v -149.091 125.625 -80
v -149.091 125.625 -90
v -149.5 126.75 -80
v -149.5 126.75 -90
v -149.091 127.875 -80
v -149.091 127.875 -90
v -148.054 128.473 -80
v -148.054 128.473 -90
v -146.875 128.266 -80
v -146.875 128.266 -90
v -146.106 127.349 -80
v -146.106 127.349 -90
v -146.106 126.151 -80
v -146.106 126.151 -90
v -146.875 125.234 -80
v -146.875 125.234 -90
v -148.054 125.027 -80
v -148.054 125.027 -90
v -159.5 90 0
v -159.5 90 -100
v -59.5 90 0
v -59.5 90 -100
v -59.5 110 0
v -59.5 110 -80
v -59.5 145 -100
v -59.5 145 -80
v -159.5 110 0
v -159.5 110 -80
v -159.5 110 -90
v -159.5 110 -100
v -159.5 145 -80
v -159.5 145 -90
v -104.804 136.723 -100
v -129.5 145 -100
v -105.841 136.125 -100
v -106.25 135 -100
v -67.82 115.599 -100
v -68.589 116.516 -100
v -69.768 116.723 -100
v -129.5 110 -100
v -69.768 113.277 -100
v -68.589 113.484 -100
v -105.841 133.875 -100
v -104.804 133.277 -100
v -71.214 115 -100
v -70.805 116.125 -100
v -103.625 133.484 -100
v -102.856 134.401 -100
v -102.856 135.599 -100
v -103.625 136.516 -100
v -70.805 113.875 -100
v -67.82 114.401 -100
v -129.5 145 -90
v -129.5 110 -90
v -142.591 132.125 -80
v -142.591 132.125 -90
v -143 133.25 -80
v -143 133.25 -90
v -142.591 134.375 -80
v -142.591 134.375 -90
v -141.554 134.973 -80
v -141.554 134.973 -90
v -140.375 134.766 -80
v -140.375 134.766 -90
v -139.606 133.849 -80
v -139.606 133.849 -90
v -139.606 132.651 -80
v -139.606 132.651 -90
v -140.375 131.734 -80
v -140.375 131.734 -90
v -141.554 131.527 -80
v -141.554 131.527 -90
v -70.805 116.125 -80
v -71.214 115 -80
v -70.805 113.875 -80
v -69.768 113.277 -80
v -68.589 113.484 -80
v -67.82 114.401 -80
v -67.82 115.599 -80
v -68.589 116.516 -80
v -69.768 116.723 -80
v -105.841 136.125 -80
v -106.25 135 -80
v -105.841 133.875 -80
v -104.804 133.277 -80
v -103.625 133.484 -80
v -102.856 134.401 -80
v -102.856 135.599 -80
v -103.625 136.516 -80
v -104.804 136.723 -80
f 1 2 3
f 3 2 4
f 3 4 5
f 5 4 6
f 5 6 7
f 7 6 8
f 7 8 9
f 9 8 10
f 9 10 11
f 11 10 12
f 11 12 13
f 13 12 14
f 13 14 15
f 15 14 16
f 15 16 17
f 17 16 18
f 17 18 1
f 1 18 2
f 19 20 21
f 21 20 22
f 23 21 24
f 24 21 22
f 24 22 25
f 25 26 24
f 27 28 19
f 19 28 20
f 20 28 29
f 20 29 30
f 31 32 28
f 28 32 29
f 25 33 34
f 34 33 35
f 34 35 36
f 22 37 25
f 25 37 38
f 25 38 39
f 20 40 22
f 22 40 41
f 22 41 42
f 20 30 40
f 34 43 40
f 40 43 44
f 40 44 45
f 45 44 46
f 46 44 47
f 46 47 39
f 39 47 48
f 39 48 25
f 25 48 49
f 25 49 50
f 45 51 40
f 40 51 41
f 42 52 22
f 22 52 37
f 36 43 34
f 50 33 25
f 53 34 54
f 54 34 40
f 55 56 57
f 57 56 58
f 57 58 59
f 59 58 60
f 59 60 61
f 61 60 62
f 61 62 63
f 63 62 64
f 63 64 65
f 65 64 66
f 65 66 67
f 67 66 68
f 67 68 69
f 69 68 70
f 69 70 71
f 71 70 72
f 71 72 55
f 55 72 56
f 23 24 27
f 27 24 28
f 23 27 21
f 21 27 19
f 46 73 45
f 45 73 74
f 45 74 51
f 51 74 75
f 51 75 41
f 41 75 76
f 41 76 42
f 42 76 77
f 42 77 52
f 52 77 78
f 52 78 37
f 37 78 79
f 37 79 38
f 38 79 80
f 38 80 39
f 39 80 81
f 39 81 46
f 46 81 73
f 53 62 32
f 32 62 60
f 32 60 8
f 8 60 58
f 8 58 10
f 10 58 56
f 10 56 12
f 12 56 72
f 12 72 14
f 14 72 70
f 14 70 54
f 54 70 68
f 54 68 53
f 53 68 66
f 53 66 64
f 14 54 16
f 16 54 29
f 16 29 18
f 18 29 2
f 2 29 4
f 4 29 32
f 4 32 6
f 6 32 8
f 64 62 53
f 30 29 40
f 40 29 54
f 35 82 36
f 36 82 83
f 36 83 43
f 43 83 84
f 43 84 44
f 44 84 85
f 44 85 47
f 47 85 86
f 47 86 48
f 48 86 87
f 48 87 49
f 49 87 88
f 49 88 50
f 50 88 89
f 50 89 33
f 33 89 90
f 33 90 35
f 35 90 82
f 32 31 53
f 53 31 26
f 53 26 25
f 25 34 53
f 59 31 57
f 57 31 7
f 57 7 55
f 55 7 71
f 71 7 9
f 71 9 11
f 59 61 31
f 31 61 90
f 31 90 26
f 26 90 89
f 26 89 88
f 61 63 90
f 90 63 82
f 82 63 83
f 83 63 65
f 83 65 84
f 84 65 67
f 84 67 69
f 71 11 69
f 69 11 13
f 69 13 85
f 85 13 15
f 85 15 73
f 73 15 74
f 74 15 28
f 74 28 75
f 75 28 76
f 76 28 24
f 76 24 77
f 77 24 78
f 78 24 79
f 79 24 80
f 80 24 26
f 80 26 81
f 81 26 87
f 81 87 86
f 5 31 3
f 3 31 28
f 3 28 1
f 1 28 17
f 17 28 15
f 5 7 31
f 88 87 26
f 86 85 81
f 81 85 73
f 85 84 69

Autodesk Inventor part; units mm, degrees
ref_plane "YZ Plane" through (0, 0, 0) normal (1, 0, 0) x (0, 1, 0)
ref_plane "XZ Plane" through (0, 0, 0) normal (0, 1, 0) x (-1, 0, 0)
ref_plane "XY Plane" through (0, 0, 0) normal (0, 0, 1) x (1, 0, 0)
sketch "Boceto2" plane through (0, 0, 0) normal (0, 1, 0) x (-1, 0, 0)
  line L0 (7.5, 100) -> (-7.5, 100)
  line L1 (-7.5, 100) -> (-7.5, -100)
  line L2 (-7.5, -100) -> (7.5, -100)
  line L3 (7.5, -100) -> (7.5, 100)
  line L4 (7.5, 100) -> (-7.5, -100) construction
  line L5 (-7.5, 100) -> (7.5, -100) construction
  point P0 (0, 0)
  dimension "d7" = 15
  dimension "d8" = 200
extrude "Extrusión1" add sketch "Boceto2" along normal blind 10
sketch "Boceto3" plane through (0, 10, 0) normal (0, 1, 0) x (1, 0, 0)
  line L0 (5, 60) -> (-5, 60)
  line L1 (-5, 60) -> (-5, 70)
  line L2 (-5, 70) -> (5, 70)
  line L3 (5, 70) -> (5, 60)
  line L4 (5, 60) -> (-5, 70) construction
  line L5 (7.5, 100) -> (-7.5, 100) projected
  line L6 (0, 64.5148) -> (0, 61.9205)
  circle A0 centre (3.25, 61.75) radius 1.75
  circle A1 centre (-3.25, 68.25) radius 1.75
  line L7 (-7.5, 100) -> (-7.5, -100) projected
  line L8 (-7.5, 0) -> (0, 0)
  line L9 (5, -70) -> (5, -60)
  line L10 (-5, -70) -> (5, -70)
  line L11 (5, -60) -> (-5, -60)
  line L12 (-5, -60) -> (-5, -70)
  line L13 (5, -60) -> (-5, -70) construction
  line L14 (0, -64.5148) -> (0, -61.9205)
  circle A2 centre (-3.25, -68.25) radius 1.75
  circle A3 centre (3.25, -61.75) radius 1.75
  point P0 (3.25, 68.25)
  point P1 (-5, 65)
  point P2 (-3.25, 61.75)
  point P3 (0, 100)
  point P4 (3.25, -68.25)
  point P5 (-3.25, -61.75)
  point P6 (-5, -65)
  dimension "d12" = 1.75
  dimension "d13" = 1.75
  dimension "d14" = 1.75
  dimension "d15" = 1.75
  dimension "d16" = 10
  dimension "d17" = 10
  dimension "d19" = 30
  dimension "d67" = 31.75
hole "Agujero1" at (3.25, 10, -61.75) at (-3.25, 10, -68.25) at (-3.25, 10, 68.25) at (3.25, 10, 61.75) direction (0, -1, 0) diameter 3.5 end through all
sketch "Boceto4" plane through (0, 10, 0) normal (0, 1, 0) x (1, 0, 0)
  line L0 (-7.5, 100) -> (-7.5, -100) projected
  line L1 (-7.5, -100) -> (7.5, -100)
  line L2 (7.5, -100) -> (7.5, -80)
  line L3 (7.5, -80) -> (-7.5, -80)
  line L4 (-7.5, -80) -> (-7.5, -100)
  line L5 (-7.5, 0) -> (1.0116, 0)
  line L6 (-7.5, -100) -> (-7.5, 100)
  line L7 (-7.5, 100) -> (7.5, 100)
  line L8 (7.5, 100) -> (7.5, 80)
  line L9 (7.5, 80) -> (-7.5, 80)
  line L10 (-7.5, 80) -> (-7.5, 100)
  point P0 (0, 0)
  point P1 (-7.5, -80)
  point P2 (-7.5, 80)
  dimension "d27" = 15
  dimension "d28" = 20
extrude "Extrusión2" add sketch "Boceto4" along normal blind 80
sketch "Boceto5" plane through (0, 90, 0) normal (0, 1, 0) x (1, 0, 0)
  line L0 (-7.5, -100) -> (7.5, -100) projected
  line L1 (-7.5, -100) -> (40.5, -100)
  line L2 (40.5, -100) -> (40.5, 100)
  line L3 (40.5, 100) -> (-7.5, 100)
  line L4 (-7.5, 100) -> (-7.5, -100)
  line L5 (40.5, -100) -> (-159.5, -100)
  line L6 (-159.5, -100) -> (-159.5, 100)
  line L7 (-159.5, 100) -> (40.5, 100)
  line L8 (40.5, 100) -> (40.5, -100)
  point P0 (0, 0)
  point P1 (-7.5, 100)
  dimension "d31" = 48
  dimension "d32" = 200
  dimension "d74" = 200
extrude "Extrusión3" add sketch "Boceto5" along normal blind 110
sketch "Boceto6" plane through (0, 200, 0) normal (0, 1, 0) x (1, 0, 0)
  line L0 (40.5, 100) -> (7.5, 100) projected
  line L1 (40.5, 100) -> (20.5, 100)
  line L2 (20.5, 100) -> (20.5, 80)
  line L3 (7.5, -100) -> (40.5, -100) projected
  line L4 (24, -100) -> (24, -80)
  line L5 (-159.5, 100) -> (-159.5, -100) projected
  line L6 (20.5, 80) -> (-159.5, 80)
  line L7 (-159.5, 80) -> (-159.5, -80)
  line L8 (-159.5, -80) -> (20.5, -80)
  line L9 (20.5, -80) -> (20.5, 80)
  line L10 (-159.5, -100) -> (40.5, -100) projected
  point P0 (7.5, 80)
  point P1 (-159.5, 80)
  dimension "d36" = 20
  dimension "d37" = 20
  dimension "d38" = 20
  dimension "d78" = 20
extrude "Extrusión4" cut sketch "Boceto6" against normal blind 90
sketch "Boceto7" plane through (-159.5, 90, -100) normal (-1, 0, 0) x (0, 0, 1)
  line L0 (0, 110) -> (20, 110) projected
  line L1 (20, 110) -> (10, 110)
  line L2 (10, 110) -> (10, 20)
  line L3 (10, 20) -> (20, 20)
  line L4 (20, 20) -> (20, 110)
  line L5 (180, 110) -> (180, 20) projected
  line L6 (180, 110) -> (190, 110)
  line L7 (190, 110) -> (190, 20)
  line L8 (190, 20) -> (180, 20)
  line L9 (180, 20) -> (180, 110)
  line L10 (200, 0) -> (200, 110) projected
  line L11 (0, 0) -> (0, 110) projected
  line L12 (0, 110) -> (10, 110)
  line L13 (10, 110) -> (10, 20)
  line L14 (10, 20) -> (0, 20)
  line L15 (0, 20) -> (0, 110)
  line L16 (200, 110) -> (0, 110) projected
  line L17 (200, 110) -> (190, 110)
  line L18 (190, 110) -> (190, 20)
  line L19 (190, 20) -> (200, 20)
  line L20 (200, 20) -> (200, 110)
  point P0 (100, -90)
  point P1 (200, 20)
  dimension "d42" = 10
  dimension "d63" = 10
  dimension "d65" = 10
extrude "Extrusión5" cut sketch "Boceto7" against normal blind 30 contours L0 L2 L14 L11 | L16 L10 L19 L7
sketch "Boceto8" plane through (-7.5, 0, 100) normal (0, 0, 1) x (1, 0, 0)
  line L0 (-122, 200) -> (-122, 110) projected
  line L1 (-132, 175) -> (-142, 175)
  line L2 (-142, 175) -> (-142, 185)
  line L3 (-142, 185) -> (-132, 185)
  line L4 (-132, 185) -> (-132, 175)
  line L5 (-132, 175) -> (-142, 185) construction
  line L6 (-142, 175) -> (-132, 185) construction
  line L7 (-152, 200) -> (48, 200) projected
  line L8 (-113, 155) -> (-128, 155)
  line L9 (-152, 110) -> (-122, 110) projected
  line L10 (-132, 180) -> (-131.5898, 180)
  circle A0 centre (-140.25, 183.25) radius 1.75
  circle A1 centre (-133.75, 176.75) radius 1.75
  line L11 (-132, 125) -> (-132, 135)
  line L12 (-142, 125) -> (-132, 125)
  line L13 (-132, 135) -> (-142, 125) construction
  line L14 (-132, 135) -> (-142, 135)
  line L15 (-142, 135) -> (-132, 125) construction
  line L16 (-142, 135) -> (-142, 125)
  line L17 (-132, 130) -> (-131.5898, 130)
  circle A2 centre (-133.75, 133.25) radius 1.75
  circle A3 centre (-140.25, 126.75) radius 1.75
  line L18 (-152, 110) -> (-152, 200) projected
  point P0 (7.5, 0)
  point P1 (-113, 215)
  point P2 (-133.75, 183.25)
  point P3 (-142, 180)
  point P4 (-140.25, 176.75)
  point P5 (48, 200)
  point P6 (-133.75, 126.75)
  point P7 (-140.25, 133.25)
  point P8 (-143, 115)
  point P9 (-133.75, 126.75)
  point P10 (-140.25, 133.25)
  point P11 (-142, 130)
  dimension "d46" = 1.75
  dimension "d47" = 1.75
  dimension "d48" = 1.75
  dimension "d49" = 1.75
  dimension "d50" = 10
  dimension "d51" = 10
  dimension "d52" = 15
  dimension "d66" = 10
  dimension "d70" = 15
hole "Agujero2" at (-147.75, 183.25, 100) at (-141.25, 176.75, 100) at (-147.75, 126.75, 100) at (-141.25, 133.25, 100) direction (0, 0, -1) diameter 3.5 end through all
ref_plane "Plano de trabajo1" through (-159.5, 90, 100) normal (0, -1, 0) x (1, 0, 0)
split "Dividir1" plane through (-159.5, 90, 100) removes the side toward (0, -1, 0)
ref_plane "Plano de trabajo2" through (-159.5, 200, 0) normal (0, 0, 1) x (1, 0, 0)
ref_plane "Plano de trabajo3" through (-59.5, 90, 100) normal (1, 0, 0) x (0, 0, -1)
sketch "Boceto9" plane through (-159.5, 90, 100) normal (0, 0, 1) x (1, 0, 0)
  line L0 (85.0357, 30) -> (115.0357, 30)
  circle A0 centre (110.0357, 25) radius 1.75
  line L1 (90.0357, 25) -> (110.0357, 25)
  line L2 (115.0357, 30) -> (115.0357, 20)
  circle A1 centre (90.0357, 25) radius 1.75
  line L3 (85.0357, 20) -> (115.0357, 30) construction
  line L4 (85.0357, 30) -> (115.0357, 20) construction
  line L5 (85.0357, 20) -> (85.0357, 30)
  line L6 (115.0357, 20) -> (85.0357, 20)
  line L7 (240, 0) -> (-40, 0) projected
  line L8 (200, 0) -> (200, 110) projected
  line L9 (200, 55) -> (88.2857, 55)
  line L10 (85.0357, 80) -> (115.0357, 80)
  circle A2 centre (110.0357, 85) radius 1.75
  line L11 (90.0357, 85) -> (110.0357, 85)
  line L12 (115.0357, 80) -> (115.0357, 90)
  circle A3 centre (90.0357, 85) radius 1.75
  line L13 (85.0357, 90) -> (115.0357, 80) construction
  line L14 (85.0357, 80) -> (115.0357, 90) construction
  line L15 (85.0357, 90) -> (85.0357, 80)
  line L16 (115.0357, 90) -> (85.0357, 90)
  line L17 (100.0357, 55) -> (185.099, 55) construction
  line L18 (160, 70) -> (160, 40)
  circle A4 centre (165, 45) radius 1.75
  line L19 (165, 65) -> (165, 45)
  line L20 (160, 40) -> (170, 40)
  circle A5 centre (165, 65) radius 1.75
  line L21 (170, 70) -> (160, 40) construction
  line L22 (160, 70) -> (170, 40) construction
  line L23 (170, 70) -> (160, 70)
  line L24 (170, 40) -> (170, 70)
  circle A6 centre (55, 65) radius 1.75
  line L25 (60, 70) -> (60, 40)
  line L26 (60, 70) -> (50, 40) construction
  line L27 (50, 70) -> (60, 70)
  line L28 (50, 40) -> (50, 70)
  line L29 (50, 70) -> (60, 40) construction
  circle A7 centre (55, 45) radius 1.75
  line L30 (55, 65) -> (55, 45)
  line L31 (60, 40) -> (50, 40)
  line L32 (30, 110) -> (30, 20) projected
  point P0 (159.5, -90)
  point P1 (100.0357, 34.7141)
  point P2 (85.0357, 36.6749)
  point P3 (100.0357, 34.7141)
  point P4 (115.0357, 25)
  point P5 (115.0357, 85)
  point P6 (189.1833, 40)
  point P7 (165, 70)
  point P8 (70.0357, 40)
  point P9 (55, 70)
  dimension "d83" = 10
  dimension "d84" = 30
  dimension "d85" = 5
  dimension "d86" = 5
  dimension "d87" = 5
  dimension "d88" = 5
  dimension "d89" = 20
  dimension "d91" = 30
  dimension "d92" = 5
  dimension "d93" = 5
  dimension "d94" = 3.5
  dimension "d95" = 5
  dimension "d96" = 5
  dimension "d97" = 5
  dimension "d98" = 5
  dimension "d99" = 5
  dimension "d100" = 20
ref_plane "Plano de trabajo4" through (0, 145, 0) normal (0, 1, 0) x (1, 0, 0)
hole "Agujero3" at (-104.5, 155, 100) at (-69.4643, 175, 100) at (-49.4643, 175, 100) at (-104.5, 135, 100) at (-69.4643, 115, 100) at (-49.4643, 115, 100) at (5.5, 135, 100) at (5.5, 155, 100) direction (0, 0, -1) diameter 3.5 end through all
sketch "Boceto10" plane through (40.5, 90, 100) normal (1, 0, 0) x (0, 0, -1)
  line L0 (85.0357, 30) -> (115.0357, 30)
  circle A0 centre (110.0357, 25) radius 1.75
  line L1 (90.0357, 25) -> (110.0357, 25)
  line L2 (115.0357, 30) -> (115.0357, 20)
  circle A1 centre (90.0357, 25) radius 1.75
  line L3 (85.0357, 20) -> (115.0357, 30) construction
  line L4 (85.0357, 30) -> (115.0357, 20) construction
  line L5 (85.0357, 20) -> (85.0357, 30)
  line L6 (115.0357, 20) -> (85.0357, 20)
  circle A2 centre (90.0357, 85) radius 1.75
  line L7 (85.0357, 80) -> (115.0357, 80)
  line L8 (85.0357, 80) -> (115.0357, 90) construction
  line L9 (85.0357, 90) -> (85.0357, 80)
  line L10 (115.0357, 90) -> (85.0357, 90)
  line L11 (85.0357, 90) -> (115.0357, 80) construction
  circle A3 centre (110.0357, 85) radius 1.75
  line L12 (90.0357, 85) -> (110.0357, 85)
  line L13 (115.0357, 80) -> (115.0357, 90)
  line L14 (160, 70) -> (160, 40)
  circle A4 centre (165, 45) radius 1.75
  line L15 (170, 40) -> (170, 70)
  line L16 (170, 70) -> (160, 40) construction
  line L17 (160, 40) -> (170, 40)
  line L18 (160, 70) -> (170, 40) construction
  circle A5 centre (165, 65) radius 1.75
  line L19 (165, 65) -> (165, 45)
  line L20 (170, 70) -> (160, 70)
  circle A6 centre (35, 65) radius 1.75
  line L21 (40, 70) -> (40, 40)
  line L22 (40, 40) -> (30, 40)
  circle A7 centre (35, 45) radius 1.75
  line L23 (35, 65) -> (35, 45)
  line L24 (40, 70) -> (30, 40) construction
  line L25 (30, 40) -> (30, 70)
  line L26 (30, 70) -> (40, 40) construction
  line L27 (30, 70) -> (40, 70)
  line L28 (0, 0) -> (0, 110) projected
  line L29 (200, 0) -> (200, 110) projected
  point P0 (100, -90)
  point P1 (100.0357, 34.7141)
  point P2 (100.0357, 34.7141)
  point P3 (85.0357, 36.6749)
  point P4 (115.0357, 25)
  point P5 (88.2857, 55)
  point P6 (115.0357, 85)
  point P7 (100.0357, 55)
  point P8 (189.1833, 40)
  point P9 (165, 70)
  point P10 (70.0357, 40)
  point P11 (35, 70)
  dimension "d108" = 10
  dimension "d109" = 30
  dimension "d110" = 5
  dimension "d111" = 5
  dimension "d112" = 5
  dimension "d113" = 5
  dimension "d114" = 5
  dimension "d115" = 5
  dimension "d116" = 3.5
  dimension "d117" = 5
  dimension "d118" = 5
  dimension "d119" = 5
  dimension "d120" = 5
  dimension "d121" = 5
  dimension "d122" = 30
  dimension "d123" = 30
hole "Agujero4" at (40.5, 175, 9.9643) at (40.5, 175, -10.0357) at (40.5, 155, 65) at (40.5, 135, 65) at (40.5, 115, 9.9643) at (40.5, 115, -10.0357) at (40.5, 135, -65) at (40.5, 155, -65) direction (-1, 0, 0) diameter 3.5 end through all
split "Dividir2" plane through (-59.5, 90, 100) removes the side toward (1, 0, 0)
split "Dividir3" plane through (0, 145, 0) removes the side toward (0, 1, 0)
split "Dividir4" plane through (-159.5, 200, 0) removes the side toward (0, 0, 1)
properties part number "container_back_head_3"
